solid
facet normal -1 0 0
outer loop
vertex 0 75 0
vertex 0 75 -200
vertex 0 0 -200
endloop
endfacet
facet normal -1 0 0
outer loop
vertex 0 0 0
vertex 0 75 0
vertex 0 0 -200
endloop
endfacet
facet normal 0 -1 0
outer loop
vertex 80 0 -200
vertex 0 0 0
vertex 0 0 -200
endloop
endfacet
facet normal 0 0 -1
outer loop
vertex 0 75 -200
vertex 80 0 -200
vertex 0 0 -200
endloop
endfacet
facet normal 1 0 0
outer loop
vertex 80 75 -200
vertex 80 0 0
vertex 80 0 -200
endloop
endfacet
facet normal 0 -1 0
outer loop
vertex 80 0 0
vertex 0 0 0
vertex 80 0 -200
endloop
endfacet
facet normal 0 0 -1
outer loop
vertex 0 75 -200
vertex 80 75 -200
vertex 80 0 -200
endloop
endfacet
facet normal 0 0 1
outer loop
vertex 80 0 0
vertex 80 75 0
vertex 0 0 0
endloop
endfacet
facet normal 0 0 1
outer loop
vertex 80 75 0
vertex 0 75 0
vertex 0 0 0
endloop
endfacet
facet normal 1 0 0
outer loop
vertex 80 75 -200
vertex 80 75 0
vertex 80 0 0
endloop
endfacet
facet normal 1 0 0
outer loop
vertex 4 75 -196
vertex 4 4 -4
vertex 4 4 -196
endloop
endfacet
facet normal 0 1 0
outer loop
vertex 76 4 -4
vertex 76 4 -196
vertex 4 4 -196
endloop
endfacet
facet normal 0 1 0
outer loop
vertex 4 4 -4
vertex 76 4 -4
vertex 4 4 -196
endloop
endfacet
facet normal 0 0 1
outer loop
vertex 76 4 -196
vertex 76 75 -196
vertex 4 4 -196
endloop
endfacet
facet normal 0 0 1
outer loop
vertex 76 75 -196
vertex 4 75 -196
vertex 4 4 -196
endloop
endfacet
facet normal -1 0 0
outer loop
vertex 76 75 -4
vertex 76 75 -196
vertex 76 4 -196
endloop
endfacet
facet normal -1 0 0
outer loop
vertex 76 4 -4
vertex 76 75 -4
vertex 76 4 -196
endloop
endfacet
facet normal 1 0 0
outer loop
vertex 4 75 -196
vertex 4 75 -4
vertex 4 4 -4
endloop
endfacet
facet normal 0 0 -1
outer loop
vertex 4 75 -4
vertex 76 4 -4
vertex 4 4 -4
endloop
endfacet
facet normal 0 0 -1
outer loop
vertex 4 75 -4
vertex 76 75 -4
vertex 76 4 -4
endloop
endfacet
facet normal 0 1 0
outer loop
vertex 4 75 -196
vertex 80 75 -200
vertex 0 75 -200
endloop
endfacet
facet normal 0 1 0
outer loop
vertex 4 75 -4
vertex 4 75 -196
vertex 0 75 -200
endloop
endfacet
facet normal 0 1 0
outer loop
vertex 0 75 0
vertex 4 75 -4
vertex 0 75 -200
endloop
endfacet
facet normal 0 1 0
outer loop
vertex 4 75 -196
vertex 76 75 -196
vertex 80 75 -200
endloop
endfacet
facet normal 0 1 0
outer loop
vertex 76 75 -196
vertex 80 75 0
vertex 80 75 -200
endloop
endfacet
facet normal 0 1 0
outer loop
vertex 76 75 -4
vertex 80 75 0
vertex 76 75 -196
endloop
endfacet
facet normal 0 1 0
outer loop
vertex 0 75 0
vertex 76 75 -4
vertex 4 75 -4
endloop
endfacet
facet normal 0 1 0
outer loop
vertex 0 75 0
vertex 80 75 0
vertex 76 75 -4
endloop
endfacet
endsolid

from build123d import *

# Parameters (mm, degrees)
SKETCH1_W           = 80
SKETCH1_H           = 75
BOSS_EXTRUDE1_DEPTH = 200
SHELL1_T            = -4


with BuildPart() as part:
    # Sketch1 → Boss-Extrude1 (new body)
    with BuildSketch(Plane.XY):
        with Locations((40, 37.5)):
            Rectangle(SKETCH1_W, SKETCH1_H)
    extrude(amount=-BOSS_EXTRUDE1_DEPTH)

    # Shell1
    shell1_openings = [part.faces().sort_by_distance(p)[0] for p in [
        (40, 75, -100),
    ]]
    offset(amount=SHELL1_T, openings=shell1_openings, kind=Kind.INTERSECTION)


solid = part.part
